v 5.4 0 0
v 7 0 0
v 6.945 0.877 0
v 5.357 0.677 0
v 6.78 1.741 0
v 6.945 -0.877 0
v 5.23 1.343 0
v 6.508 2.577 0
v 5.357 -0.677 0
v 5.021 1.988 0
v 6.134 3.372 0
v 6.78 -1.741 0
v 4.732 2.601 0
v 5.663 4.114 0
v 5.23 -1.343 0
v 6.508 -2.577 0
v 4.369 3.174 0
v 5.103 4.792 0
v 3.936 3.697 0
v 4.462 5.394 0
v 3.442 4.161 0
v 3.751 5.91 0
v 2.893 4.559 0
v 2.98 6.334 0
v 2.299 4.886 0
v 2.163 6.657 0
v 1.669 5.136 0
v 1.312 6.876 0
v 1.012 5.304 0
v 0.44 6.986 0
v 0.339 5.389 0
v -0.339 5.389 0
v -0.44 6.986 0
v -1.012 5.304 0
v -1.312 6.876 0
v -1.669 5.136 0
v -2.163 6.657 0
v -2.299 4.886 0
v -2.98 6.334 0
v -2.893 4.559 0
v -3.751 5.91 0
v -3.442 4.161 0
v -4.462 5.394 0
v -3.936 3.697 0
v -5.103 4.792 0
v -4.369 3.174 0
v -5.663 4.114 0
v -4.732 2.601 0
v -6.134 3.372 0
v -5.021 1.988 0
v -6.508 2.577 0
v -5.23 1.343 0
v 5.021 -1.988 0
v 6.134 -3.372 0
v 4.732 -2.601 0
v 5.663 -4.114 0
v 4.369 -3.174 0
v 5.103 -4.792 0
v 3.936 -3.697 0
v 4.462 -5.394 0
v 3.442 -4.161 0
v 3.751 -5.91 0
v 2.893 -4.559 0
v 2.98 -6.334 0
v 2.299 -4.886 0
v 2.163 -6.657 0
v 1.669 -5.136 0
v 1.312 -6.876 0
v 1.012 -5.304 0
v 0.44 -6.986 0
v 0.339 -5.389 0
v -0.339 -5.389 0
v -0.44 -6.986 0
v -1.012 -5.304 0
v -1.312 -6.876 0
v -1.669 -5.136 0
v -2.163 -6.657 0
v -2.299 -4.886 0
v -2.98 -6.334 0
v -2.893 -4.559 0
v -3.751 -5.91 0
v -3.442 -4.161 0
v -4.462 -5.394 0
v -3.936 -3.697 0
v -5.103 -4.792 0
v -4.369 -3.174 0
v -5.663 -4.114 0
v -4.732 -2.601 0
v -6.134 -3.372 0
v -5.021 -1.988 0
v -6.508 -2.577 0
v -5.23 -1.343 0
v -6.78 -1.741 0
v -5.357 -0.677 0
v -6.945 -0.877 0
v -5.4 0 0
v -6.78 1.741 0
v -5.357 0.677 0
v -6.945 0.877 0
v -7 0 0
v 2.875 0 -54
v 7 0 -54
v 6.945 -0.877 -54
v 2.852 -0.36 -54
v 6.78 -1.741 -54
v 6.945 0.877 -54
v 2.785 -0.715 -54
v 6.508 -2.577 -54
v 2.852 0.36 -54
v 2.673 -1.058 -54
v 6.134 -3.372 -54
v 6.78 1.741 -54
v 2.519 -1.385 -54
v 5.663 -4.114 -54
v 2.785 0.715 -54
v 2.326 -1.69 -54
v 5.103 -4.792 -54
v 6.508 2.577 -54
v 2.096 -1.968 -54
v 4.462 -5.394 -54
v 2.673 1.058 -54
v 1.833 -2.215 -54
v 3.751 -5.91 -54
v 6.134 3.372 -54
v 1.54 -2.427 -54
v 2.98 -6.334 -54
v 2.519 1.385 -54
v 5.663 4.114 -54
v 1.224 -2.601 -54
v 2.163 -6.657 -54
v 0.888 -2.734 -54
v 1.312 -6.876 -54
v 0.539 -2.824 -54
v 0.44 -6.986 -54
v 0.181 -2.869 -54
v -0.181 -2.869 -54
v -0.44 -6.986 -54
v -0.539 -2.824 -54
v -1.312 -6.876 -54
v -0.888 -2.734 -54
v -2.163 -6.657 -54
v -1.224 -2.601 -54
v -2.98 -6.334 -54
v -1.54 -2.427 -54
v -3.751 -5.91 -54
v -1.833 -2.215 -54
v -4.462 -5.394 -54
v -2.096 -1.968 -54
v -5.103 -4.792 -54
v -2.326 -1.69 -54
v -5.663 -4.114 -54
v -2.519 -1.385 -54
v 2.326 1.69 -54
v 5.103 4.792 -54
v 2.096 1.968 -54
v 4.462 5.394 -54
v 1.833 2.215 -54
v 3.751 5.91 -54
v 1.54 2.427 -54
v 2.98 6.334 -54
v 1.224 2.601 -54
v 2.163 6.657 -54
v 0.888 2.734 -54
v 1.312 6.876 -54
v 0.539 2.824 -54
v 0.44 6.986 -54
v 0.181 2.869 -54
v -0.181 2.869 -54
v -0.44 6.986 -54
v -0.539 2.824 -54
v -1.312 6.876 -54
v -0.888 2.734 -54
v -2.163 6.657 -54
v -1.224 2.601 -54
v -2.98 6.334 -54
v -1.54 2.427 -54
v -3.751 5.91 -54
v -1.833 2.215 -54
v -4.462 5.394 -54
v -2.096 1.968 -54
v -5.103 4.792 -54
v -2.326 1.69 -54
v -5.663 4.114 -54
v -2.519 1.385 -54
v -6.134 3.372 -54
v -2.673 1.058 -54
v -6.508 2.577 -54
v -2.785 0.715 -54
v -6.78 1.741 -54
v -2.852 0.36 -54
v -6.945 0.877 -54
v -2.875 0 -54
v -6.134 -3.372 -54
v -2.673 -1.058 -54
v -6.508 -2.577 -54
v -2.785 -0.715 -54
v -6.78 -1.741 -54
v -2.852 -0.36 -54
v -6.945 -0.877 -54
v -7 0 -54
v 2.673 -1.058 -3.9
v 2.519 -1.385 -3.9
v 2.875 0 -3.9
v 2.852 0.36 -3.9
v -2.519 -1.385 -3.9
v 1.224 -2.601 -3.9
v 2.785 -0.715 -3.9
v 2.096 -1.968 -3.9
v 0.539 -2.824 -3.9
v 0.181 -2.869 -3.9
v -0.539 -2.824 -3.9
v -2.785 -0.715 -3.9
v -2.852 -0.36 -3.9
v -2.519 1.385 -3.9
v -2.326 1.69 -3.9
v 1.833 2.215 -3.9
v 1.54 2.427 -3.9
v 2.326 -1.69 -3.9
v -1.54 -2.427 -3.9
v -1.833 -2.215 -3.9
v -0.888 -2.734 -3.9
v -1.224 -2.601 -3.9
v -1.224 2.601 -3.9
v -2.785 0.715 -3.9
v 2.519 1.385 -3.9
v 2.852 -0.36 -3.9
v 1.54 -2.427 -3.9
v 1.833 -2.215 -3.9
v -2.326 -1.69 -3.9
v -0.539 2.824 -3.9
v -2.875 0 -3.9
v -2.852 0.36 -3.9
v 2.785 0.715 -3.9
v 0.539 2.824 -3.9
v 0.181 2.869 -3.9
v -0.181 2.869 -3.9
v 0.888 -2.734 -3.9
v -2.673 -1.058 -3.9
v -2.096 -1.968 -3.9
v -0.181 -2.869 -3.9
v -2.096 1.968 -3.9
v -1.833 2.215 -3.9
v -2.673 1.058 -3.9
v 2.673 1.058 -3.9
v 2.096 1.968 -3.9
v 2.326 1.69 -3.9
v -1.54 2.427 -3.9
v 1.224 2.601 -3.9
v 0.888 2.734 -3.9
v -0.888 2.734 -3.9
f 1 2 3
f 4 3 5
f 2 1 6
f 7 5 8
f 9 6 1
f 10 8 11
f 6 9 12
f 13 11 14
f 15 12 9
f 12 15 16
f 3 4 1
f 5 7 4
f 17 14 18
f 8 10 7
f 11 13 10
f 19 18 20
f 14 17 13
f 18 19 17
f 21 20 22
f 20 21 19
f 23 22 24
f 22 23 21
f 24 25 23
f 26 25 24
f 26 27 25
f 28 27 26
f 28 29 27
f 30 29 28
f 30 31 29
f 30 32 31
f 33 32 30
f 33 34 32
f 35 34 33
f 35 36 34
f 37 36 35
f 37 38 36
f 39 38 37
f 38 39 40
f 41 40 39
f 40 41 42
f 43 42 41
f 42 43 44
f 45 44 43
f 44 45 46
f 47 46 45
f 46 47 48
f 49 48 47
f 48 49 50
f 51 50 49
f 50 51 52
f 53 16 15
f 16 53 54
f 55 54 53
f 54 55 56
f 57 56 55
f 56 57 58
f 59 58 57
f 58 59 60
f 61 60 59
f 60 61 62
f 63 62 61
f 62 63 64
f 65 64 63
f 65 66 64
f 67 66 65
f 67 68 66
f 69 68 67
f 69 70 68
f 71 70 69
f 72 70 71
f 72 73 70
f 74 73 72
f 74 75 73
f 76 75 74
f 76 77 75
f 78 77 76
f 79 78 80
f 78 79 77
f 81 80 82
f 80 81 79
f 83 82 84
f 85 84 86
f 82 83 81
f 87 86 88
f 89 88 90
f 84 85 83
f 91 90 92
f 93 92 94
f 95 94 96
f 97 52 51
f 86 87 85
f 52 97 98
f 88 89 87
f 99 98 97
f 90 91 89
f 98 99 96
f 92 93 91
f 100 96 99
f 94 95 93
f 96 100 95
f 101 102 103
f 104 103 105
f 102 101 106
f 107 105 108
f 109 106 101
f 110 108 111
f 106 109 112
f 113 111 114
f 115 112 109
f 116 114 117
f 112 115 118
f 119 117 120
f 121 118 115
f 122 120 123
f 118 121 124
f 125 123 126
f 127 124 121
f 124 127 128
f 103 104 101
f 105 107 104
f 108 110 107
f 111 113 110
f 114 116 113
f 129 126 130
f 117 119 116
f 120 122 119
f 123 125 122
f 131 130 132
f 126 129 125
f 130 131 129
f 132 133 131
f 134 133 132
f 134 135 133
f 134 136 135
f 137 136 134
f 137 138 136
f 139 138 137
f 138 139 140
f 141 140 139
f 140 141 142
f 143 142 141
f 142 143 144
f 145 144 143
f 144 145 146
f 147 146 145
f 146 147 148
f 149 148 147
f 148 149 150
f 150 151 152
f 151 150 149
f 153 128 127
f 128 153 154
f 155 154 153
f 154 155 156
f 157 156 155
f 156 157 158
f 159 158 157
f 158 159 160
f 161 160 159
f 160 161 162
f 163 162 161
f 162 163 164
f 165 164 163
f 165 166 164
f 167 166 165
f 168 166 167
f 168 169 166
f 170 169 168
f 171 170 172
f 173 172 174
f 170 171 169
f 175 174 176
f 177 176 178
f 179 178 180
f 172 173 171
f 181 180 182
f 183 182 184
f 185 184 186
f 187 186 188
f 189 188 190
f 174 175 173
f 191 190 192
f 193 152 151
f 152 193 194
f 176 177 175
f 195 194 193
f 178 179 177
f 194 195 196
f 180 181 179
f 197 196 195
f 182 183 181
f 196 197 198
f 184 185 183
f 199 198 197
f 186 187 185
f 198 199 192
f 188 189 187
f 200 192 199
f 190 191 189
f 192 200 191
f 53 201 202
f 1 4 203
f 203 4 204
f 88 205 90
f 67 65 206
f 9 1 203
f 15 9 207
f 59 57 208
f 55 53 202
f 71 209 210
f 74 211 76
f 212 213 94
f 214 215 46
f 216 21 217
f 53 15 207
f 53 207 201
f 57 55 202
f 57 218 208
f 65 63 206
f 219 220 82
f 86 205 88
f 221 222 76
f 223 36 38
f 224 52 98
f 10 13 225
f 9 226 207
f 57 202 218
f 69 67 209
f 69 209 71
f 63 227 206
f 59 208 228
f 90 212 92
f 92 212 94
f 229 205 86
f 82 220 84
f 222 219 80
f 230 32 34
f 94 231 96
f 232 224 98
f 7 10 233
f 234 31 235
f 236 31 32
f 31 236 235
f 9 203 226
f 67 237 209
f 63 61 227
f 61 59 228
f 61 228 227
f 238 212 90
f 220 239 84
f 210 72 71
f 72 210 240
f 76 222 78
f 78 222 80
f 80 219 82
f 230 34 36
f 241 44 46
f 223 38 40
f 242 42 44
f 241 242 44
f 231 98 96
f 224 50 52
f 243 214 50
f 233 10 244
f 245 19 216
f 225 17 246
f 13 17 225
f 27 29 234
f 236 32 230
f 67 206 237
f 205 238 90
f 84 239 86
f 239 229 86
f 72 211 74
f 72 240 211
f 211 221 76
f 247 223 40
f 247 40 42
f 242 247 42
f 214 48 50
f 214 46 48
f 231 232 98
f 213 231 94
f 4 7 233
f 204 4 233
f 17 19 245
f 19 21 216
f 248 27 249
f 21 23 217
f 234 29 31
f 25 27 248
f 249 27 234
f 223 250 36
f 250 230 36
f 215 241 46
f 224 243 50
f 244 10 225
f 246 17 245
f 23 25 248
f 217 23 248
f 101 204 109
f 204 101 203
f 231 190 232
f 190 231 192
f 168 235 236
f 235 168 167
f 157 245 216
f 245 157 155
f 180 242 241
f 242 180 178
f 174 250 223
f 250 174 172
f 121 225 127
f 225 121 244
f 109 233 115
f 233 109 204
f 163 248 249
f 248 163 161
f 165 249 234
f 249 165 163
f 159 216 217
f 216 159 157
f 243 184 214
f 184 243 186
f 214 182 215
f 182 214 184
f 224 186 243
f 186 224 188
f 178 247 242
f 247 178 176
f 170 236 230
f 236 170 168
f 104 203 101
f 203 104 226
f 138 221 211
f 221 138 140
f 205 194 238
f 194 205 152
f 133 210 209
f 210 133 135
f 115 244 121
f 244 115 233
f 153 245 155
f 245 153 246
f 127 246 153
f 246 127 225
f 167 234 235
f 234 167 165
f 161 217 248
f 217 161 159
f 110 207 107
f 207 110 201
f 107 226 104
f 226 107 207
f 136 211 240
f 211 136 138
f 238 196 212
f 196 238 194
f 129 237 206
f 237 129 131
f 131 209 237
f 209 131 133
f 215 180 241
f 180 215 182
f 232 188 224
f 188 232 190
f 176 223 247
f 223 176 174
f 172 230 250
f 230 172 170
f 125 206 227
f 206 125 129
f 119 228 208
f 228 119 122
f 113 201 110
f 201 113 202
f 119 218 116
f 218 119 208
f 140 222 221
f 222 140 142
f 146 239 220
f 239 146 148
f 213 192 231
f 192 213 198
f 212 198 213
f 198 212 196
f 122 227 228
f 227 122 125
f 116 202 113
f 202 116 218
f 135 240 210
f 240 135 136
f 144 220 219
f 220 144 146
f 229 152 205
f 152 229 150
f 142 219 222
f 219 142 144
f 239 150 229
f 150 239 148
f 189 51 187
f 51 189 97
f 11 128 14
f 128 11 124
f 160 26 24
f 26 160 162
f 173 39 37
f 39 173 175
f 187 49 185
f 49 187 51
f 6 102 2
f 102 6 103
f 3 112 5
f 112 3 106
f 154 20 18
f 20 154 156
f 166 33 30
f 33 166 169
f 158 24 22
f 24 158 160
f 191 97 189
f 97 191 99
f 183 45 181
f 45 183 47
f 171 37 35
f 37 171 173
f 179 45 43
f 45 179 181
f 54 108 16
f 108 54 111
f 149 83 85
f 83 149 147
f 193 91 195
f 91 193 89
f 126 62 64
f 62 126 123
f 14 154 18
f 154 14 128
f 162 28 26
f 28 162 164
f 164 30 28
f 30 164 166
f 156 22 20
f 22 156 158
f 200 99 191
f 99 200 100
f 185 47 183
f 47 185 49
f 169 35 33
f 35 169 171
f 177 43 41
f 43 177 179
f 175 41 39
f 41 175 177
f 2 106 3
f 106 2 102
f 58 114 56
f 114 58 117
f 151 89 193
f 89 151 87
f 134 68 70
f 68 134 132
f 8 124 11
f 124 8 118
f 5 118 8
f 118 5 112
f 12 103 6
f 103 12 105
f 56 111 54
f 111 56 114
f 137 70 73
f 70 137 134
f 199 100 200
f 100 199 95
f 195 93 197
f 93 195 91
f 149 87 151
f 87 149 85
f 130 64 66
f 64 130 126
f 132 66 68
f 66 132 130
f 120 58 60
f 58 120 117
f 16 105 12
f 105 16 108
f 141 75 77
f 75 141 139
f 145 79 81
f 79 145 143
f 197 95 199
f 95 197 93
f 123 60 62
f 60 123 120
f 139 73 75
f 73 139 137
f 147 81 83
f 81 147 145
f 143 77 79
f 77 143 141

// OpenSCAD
$fn = 50;


difference() {
	union() {
		translate(v = [0, 0, -54.0000000000]) {
			cylinder(h = 54, r = 7.0000000000);
		}
		cylinder(h = 0, r = 17.0000000000);
	}
	union() {
		translate(v = [0, 0, 0]) {
			rotate(a = [0, 0, 0]) {
				difference() {
					union() {
						#translate(v = [0, 0, -54.0000000000]) {
							cylinder(h = 54, r = 2.6000000000);
						}
						#translate(v = [0, 0, -3.9000000000]) {
							cylinder(h = 3.9000000000, r = 7.0000000000, r1 = 2.8750000000, r2 = 5.4000000000);
						}
						#translate(v = [0, 0, -54.0000000000]) {
							cylinder(h = 54, r = 2.8750000000);
						}
						#translate(v = [0, 0, -54.0000000000]) {
							cylinder(h = 54, r = 2.6000000000);
						}
					}
					union();
				}
			}
		}
	}
}
